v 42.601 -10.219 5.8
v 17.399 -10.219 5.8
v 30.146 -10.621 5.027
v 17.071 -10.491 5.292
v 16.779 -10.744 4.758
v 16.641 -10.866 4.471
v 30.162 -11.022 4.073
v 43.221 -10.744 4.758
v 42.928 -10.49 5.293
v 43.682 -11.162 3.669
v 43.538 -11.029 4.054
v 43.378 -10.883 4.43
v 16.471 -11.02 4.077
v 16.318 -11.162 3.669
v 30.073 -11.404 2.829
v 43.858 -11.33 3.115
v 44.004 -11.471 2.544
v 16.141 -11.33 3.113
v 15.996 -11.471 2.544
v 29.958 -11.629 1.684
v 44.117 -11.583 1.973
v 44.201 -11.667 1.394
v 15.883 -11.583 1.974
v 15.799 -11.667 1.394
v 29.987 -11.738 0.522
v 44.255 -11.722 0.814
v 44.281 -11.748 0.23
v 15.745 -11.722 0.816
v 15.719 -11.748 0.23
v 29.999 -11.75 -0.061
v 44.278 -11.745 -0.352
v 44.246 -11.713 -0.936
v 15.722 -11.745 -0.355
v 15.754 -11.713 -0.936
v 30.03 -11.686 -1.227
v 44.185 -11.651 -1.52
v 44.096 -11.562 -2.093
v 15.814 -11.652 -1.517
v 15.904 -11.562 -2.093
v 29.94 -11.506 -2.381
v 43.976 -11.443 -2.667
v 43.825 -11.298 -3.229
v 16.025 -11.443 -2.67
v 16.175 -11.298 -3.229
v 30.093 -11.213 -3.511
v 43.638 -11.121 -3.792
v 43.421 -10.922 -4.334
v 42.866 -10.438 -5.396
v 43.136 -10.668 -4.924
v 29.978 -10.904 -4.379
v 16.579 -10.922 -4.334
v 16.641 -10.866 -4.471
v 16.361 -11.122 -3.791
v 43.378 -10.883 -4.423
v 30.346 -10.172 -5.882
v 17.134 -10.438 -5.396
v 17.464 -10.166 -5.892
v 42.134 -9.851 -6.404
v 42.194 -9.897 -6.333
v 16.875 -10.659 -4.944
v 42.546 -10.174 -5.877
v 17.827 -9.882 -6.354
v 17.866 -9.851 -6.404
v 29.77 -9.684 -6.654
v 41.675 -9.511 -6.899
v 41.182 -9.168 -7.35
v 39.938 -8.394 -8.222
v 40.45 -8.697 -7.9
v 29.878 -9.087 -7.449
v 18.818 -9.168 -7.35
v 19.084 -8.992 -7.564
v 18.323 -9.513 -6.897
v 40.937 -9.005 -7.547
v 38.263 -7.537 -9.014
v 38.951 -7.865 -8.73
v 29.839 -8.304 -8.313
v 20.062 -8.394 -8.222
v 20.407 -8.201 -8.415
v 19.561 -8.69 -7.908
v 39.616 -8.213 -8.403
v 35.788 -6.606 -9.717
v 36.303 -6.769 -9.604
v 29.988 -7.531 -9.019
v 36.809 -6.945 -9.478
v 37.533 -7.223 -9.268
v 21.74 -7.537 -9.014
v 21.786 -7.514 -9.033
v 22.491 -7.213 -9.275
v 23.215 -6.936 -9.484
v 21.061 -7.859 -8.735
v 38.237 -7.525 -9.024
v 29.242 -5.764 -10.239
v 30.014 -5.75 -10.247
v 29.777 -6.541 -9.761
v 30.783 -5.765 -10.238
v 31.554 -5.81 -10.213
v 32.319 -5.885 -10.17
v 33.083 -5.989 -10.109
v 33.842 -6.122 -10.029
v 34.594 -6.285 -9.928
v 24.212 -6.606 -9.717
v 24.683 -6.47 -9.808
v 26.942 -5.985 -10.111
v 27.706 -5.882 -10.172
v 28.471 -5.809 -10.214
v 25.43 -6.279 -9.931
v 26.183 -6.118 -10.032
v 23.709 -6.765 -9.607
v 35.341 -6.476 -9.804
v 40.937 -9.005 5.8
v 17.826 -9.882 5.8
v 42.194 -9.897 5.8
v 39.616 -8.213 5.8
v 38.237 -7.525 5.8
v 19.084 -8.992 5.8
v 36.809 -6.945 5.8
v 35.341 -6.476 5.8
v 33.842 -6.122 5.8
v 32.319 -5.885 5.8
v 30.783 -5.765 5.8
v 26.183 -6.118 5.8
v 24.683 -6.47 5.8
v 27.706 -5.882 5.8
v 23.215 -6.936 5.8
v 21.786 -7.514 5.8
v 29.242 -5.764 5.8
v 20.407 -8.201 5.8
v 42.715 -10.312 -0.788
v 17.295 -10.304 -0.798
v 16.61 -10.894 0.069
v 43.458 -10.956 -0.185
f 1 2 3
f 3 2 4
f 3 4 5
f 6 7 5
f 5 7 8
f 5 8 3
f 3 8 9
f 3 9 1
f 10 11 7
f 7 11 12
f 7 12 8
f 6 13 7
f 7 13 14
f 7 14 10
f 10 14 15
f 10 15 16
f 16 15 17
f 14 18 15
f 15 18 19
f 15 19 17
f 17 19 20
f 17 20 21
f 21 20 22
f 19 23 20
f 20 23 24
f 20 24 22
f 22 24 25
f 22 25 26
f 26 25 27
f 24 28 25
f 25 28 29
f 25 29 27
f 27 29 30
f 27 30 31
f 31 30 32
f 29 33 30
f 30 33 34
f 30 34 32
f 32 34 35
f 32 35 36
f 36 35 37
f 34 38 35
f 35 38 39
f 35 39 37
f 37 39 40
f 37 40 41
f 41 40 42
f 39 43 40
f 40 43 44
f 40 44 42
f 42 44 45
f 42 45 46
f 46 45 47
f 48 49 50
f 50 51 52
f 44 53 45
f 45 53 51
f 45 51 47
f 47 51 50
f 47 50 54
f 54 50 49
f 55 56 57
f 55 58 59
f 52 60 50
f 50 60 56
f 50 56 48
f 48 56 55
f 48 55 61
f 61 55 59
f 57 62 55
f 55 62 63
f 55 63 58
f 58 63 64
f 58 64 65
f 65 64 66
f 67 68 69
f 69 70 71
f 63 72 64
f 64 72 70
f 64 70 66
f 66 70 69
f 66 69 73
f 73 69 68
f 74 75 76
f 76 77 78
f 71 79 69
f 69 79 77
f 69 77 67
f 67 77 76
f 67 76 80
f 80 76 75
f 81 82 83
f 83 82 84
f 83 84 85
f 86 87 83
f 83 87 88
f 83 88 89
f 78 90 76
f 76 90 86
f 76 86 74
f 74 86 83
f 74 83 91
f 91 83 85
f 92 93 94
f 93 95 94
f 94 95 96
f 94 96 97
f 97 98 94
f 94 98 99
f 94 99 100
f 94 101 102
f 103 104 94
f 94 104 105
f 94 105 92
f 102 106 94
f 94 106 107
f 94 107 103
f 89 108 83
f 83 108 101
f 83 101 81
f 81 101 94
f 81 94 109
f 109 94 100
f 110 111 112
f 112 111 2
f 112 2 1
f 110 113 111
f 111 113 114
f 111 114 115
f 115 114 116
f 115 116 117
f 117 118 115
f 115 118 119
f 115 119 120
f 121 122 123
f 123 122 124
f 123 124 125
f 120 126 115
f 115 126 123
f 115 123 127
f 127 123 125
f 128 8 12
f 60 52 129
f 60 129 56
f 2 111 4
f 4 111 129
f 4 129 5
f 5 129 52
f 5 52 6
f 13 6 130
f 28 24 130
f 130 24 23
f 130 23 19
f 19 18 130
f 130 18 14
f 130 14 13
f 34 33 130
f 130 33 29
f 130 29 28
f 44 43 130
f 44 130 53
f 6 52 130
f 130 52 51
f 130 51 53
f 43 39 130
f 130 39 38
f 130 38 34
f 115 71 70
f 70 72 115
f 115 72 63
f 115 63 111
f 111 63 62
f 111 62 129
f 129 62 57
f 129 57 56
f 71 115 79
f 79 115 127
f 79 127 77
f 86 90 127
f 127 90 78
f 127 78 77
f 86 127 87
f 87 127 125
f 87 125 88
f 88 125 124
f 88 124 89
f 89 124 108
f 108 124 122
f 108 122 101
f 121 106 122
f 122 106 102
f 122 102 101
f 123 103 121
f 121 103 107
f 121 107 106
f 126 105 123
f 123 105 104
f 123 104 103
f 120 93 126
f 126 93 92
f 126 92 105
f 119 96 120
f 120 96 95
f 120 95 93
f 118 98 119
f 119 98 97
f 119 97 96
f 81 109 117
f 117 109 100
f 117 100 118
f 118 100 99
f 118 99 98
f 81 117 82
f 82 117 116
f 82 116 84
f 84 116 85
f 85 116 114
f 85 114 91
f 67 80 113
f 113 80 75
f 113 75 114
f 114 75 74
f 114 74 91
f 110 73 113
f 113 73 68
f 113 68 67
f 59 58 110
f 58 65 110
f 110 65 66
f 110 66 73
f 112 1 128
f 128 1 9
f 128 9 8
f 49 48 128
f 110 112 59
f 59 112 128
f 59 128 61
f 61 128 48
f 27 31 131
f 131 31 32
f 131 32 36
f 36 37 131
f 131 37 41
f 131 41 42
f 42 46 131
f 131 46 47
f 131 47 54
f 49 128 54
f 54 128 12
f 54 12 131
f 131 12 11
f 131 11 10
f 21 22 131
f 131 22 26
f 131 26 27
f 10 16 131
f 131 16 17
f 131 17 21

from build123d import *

# Parameters (mm, degrees)
SKETCH1_R           = 11.75
BOSS_EXTRUDE1_DEPTH = 60
CUT_EXTRUDE1_DEPTH  = 63.258533552
CUT_EXTRUDE2_DEPTH  = 64.608686514


with BuildPart() as part:
    # Sketch1 → Boss-Extrude1 (new body)
    with BuildSketch(Plane(origin=(0, 0, 0), x_dir=(0, 0, -1), z_dir=(1, 0, 0))):
        Circle(SKETCH1_R)
    extrude(amount=BOSS_EXTRUDE1_DEPTH)

    # Sketch2 → Cut-Extrude1 (cut, through all)
    with BuildSketch(Plane.ZY):
        with BuildLine():
            Line((5.8, 10.218732798), (5.8, -10.218732798))
            ThreePointArc((5.8, -10.218732798), (11.75, 0), (5.8, 10.218732798))
        make_face()
    extrude(amount=-CUT_EXTRUDE1_DEPTH, mode=Mode.SUBTRACT)

    # Sketch3 → Cut-Extrude2 (cut, through all)
    with BuildSketch(Plane.XY.offset(5.8)):
        with BuildLine():
            Line((0, 11.75), (60, 11.75))
            Line((60, 11.75), (60, -11.75))
            Line((60, -11.75), (44.282856857, -11.75))
            ThreePointArc((44.282856857, -11.75), (30, -5.75), (15.717143143, -11.75))
            Line((15.717143143, -11.75), (0, -11.75))
            Line((0, -11.75), (0, 11.75))
        make_face()
    extrude(amount=-CUT_EXTRUDE2_DEPTH, mode=Mode.SUBTRACT)


solid = part.part
